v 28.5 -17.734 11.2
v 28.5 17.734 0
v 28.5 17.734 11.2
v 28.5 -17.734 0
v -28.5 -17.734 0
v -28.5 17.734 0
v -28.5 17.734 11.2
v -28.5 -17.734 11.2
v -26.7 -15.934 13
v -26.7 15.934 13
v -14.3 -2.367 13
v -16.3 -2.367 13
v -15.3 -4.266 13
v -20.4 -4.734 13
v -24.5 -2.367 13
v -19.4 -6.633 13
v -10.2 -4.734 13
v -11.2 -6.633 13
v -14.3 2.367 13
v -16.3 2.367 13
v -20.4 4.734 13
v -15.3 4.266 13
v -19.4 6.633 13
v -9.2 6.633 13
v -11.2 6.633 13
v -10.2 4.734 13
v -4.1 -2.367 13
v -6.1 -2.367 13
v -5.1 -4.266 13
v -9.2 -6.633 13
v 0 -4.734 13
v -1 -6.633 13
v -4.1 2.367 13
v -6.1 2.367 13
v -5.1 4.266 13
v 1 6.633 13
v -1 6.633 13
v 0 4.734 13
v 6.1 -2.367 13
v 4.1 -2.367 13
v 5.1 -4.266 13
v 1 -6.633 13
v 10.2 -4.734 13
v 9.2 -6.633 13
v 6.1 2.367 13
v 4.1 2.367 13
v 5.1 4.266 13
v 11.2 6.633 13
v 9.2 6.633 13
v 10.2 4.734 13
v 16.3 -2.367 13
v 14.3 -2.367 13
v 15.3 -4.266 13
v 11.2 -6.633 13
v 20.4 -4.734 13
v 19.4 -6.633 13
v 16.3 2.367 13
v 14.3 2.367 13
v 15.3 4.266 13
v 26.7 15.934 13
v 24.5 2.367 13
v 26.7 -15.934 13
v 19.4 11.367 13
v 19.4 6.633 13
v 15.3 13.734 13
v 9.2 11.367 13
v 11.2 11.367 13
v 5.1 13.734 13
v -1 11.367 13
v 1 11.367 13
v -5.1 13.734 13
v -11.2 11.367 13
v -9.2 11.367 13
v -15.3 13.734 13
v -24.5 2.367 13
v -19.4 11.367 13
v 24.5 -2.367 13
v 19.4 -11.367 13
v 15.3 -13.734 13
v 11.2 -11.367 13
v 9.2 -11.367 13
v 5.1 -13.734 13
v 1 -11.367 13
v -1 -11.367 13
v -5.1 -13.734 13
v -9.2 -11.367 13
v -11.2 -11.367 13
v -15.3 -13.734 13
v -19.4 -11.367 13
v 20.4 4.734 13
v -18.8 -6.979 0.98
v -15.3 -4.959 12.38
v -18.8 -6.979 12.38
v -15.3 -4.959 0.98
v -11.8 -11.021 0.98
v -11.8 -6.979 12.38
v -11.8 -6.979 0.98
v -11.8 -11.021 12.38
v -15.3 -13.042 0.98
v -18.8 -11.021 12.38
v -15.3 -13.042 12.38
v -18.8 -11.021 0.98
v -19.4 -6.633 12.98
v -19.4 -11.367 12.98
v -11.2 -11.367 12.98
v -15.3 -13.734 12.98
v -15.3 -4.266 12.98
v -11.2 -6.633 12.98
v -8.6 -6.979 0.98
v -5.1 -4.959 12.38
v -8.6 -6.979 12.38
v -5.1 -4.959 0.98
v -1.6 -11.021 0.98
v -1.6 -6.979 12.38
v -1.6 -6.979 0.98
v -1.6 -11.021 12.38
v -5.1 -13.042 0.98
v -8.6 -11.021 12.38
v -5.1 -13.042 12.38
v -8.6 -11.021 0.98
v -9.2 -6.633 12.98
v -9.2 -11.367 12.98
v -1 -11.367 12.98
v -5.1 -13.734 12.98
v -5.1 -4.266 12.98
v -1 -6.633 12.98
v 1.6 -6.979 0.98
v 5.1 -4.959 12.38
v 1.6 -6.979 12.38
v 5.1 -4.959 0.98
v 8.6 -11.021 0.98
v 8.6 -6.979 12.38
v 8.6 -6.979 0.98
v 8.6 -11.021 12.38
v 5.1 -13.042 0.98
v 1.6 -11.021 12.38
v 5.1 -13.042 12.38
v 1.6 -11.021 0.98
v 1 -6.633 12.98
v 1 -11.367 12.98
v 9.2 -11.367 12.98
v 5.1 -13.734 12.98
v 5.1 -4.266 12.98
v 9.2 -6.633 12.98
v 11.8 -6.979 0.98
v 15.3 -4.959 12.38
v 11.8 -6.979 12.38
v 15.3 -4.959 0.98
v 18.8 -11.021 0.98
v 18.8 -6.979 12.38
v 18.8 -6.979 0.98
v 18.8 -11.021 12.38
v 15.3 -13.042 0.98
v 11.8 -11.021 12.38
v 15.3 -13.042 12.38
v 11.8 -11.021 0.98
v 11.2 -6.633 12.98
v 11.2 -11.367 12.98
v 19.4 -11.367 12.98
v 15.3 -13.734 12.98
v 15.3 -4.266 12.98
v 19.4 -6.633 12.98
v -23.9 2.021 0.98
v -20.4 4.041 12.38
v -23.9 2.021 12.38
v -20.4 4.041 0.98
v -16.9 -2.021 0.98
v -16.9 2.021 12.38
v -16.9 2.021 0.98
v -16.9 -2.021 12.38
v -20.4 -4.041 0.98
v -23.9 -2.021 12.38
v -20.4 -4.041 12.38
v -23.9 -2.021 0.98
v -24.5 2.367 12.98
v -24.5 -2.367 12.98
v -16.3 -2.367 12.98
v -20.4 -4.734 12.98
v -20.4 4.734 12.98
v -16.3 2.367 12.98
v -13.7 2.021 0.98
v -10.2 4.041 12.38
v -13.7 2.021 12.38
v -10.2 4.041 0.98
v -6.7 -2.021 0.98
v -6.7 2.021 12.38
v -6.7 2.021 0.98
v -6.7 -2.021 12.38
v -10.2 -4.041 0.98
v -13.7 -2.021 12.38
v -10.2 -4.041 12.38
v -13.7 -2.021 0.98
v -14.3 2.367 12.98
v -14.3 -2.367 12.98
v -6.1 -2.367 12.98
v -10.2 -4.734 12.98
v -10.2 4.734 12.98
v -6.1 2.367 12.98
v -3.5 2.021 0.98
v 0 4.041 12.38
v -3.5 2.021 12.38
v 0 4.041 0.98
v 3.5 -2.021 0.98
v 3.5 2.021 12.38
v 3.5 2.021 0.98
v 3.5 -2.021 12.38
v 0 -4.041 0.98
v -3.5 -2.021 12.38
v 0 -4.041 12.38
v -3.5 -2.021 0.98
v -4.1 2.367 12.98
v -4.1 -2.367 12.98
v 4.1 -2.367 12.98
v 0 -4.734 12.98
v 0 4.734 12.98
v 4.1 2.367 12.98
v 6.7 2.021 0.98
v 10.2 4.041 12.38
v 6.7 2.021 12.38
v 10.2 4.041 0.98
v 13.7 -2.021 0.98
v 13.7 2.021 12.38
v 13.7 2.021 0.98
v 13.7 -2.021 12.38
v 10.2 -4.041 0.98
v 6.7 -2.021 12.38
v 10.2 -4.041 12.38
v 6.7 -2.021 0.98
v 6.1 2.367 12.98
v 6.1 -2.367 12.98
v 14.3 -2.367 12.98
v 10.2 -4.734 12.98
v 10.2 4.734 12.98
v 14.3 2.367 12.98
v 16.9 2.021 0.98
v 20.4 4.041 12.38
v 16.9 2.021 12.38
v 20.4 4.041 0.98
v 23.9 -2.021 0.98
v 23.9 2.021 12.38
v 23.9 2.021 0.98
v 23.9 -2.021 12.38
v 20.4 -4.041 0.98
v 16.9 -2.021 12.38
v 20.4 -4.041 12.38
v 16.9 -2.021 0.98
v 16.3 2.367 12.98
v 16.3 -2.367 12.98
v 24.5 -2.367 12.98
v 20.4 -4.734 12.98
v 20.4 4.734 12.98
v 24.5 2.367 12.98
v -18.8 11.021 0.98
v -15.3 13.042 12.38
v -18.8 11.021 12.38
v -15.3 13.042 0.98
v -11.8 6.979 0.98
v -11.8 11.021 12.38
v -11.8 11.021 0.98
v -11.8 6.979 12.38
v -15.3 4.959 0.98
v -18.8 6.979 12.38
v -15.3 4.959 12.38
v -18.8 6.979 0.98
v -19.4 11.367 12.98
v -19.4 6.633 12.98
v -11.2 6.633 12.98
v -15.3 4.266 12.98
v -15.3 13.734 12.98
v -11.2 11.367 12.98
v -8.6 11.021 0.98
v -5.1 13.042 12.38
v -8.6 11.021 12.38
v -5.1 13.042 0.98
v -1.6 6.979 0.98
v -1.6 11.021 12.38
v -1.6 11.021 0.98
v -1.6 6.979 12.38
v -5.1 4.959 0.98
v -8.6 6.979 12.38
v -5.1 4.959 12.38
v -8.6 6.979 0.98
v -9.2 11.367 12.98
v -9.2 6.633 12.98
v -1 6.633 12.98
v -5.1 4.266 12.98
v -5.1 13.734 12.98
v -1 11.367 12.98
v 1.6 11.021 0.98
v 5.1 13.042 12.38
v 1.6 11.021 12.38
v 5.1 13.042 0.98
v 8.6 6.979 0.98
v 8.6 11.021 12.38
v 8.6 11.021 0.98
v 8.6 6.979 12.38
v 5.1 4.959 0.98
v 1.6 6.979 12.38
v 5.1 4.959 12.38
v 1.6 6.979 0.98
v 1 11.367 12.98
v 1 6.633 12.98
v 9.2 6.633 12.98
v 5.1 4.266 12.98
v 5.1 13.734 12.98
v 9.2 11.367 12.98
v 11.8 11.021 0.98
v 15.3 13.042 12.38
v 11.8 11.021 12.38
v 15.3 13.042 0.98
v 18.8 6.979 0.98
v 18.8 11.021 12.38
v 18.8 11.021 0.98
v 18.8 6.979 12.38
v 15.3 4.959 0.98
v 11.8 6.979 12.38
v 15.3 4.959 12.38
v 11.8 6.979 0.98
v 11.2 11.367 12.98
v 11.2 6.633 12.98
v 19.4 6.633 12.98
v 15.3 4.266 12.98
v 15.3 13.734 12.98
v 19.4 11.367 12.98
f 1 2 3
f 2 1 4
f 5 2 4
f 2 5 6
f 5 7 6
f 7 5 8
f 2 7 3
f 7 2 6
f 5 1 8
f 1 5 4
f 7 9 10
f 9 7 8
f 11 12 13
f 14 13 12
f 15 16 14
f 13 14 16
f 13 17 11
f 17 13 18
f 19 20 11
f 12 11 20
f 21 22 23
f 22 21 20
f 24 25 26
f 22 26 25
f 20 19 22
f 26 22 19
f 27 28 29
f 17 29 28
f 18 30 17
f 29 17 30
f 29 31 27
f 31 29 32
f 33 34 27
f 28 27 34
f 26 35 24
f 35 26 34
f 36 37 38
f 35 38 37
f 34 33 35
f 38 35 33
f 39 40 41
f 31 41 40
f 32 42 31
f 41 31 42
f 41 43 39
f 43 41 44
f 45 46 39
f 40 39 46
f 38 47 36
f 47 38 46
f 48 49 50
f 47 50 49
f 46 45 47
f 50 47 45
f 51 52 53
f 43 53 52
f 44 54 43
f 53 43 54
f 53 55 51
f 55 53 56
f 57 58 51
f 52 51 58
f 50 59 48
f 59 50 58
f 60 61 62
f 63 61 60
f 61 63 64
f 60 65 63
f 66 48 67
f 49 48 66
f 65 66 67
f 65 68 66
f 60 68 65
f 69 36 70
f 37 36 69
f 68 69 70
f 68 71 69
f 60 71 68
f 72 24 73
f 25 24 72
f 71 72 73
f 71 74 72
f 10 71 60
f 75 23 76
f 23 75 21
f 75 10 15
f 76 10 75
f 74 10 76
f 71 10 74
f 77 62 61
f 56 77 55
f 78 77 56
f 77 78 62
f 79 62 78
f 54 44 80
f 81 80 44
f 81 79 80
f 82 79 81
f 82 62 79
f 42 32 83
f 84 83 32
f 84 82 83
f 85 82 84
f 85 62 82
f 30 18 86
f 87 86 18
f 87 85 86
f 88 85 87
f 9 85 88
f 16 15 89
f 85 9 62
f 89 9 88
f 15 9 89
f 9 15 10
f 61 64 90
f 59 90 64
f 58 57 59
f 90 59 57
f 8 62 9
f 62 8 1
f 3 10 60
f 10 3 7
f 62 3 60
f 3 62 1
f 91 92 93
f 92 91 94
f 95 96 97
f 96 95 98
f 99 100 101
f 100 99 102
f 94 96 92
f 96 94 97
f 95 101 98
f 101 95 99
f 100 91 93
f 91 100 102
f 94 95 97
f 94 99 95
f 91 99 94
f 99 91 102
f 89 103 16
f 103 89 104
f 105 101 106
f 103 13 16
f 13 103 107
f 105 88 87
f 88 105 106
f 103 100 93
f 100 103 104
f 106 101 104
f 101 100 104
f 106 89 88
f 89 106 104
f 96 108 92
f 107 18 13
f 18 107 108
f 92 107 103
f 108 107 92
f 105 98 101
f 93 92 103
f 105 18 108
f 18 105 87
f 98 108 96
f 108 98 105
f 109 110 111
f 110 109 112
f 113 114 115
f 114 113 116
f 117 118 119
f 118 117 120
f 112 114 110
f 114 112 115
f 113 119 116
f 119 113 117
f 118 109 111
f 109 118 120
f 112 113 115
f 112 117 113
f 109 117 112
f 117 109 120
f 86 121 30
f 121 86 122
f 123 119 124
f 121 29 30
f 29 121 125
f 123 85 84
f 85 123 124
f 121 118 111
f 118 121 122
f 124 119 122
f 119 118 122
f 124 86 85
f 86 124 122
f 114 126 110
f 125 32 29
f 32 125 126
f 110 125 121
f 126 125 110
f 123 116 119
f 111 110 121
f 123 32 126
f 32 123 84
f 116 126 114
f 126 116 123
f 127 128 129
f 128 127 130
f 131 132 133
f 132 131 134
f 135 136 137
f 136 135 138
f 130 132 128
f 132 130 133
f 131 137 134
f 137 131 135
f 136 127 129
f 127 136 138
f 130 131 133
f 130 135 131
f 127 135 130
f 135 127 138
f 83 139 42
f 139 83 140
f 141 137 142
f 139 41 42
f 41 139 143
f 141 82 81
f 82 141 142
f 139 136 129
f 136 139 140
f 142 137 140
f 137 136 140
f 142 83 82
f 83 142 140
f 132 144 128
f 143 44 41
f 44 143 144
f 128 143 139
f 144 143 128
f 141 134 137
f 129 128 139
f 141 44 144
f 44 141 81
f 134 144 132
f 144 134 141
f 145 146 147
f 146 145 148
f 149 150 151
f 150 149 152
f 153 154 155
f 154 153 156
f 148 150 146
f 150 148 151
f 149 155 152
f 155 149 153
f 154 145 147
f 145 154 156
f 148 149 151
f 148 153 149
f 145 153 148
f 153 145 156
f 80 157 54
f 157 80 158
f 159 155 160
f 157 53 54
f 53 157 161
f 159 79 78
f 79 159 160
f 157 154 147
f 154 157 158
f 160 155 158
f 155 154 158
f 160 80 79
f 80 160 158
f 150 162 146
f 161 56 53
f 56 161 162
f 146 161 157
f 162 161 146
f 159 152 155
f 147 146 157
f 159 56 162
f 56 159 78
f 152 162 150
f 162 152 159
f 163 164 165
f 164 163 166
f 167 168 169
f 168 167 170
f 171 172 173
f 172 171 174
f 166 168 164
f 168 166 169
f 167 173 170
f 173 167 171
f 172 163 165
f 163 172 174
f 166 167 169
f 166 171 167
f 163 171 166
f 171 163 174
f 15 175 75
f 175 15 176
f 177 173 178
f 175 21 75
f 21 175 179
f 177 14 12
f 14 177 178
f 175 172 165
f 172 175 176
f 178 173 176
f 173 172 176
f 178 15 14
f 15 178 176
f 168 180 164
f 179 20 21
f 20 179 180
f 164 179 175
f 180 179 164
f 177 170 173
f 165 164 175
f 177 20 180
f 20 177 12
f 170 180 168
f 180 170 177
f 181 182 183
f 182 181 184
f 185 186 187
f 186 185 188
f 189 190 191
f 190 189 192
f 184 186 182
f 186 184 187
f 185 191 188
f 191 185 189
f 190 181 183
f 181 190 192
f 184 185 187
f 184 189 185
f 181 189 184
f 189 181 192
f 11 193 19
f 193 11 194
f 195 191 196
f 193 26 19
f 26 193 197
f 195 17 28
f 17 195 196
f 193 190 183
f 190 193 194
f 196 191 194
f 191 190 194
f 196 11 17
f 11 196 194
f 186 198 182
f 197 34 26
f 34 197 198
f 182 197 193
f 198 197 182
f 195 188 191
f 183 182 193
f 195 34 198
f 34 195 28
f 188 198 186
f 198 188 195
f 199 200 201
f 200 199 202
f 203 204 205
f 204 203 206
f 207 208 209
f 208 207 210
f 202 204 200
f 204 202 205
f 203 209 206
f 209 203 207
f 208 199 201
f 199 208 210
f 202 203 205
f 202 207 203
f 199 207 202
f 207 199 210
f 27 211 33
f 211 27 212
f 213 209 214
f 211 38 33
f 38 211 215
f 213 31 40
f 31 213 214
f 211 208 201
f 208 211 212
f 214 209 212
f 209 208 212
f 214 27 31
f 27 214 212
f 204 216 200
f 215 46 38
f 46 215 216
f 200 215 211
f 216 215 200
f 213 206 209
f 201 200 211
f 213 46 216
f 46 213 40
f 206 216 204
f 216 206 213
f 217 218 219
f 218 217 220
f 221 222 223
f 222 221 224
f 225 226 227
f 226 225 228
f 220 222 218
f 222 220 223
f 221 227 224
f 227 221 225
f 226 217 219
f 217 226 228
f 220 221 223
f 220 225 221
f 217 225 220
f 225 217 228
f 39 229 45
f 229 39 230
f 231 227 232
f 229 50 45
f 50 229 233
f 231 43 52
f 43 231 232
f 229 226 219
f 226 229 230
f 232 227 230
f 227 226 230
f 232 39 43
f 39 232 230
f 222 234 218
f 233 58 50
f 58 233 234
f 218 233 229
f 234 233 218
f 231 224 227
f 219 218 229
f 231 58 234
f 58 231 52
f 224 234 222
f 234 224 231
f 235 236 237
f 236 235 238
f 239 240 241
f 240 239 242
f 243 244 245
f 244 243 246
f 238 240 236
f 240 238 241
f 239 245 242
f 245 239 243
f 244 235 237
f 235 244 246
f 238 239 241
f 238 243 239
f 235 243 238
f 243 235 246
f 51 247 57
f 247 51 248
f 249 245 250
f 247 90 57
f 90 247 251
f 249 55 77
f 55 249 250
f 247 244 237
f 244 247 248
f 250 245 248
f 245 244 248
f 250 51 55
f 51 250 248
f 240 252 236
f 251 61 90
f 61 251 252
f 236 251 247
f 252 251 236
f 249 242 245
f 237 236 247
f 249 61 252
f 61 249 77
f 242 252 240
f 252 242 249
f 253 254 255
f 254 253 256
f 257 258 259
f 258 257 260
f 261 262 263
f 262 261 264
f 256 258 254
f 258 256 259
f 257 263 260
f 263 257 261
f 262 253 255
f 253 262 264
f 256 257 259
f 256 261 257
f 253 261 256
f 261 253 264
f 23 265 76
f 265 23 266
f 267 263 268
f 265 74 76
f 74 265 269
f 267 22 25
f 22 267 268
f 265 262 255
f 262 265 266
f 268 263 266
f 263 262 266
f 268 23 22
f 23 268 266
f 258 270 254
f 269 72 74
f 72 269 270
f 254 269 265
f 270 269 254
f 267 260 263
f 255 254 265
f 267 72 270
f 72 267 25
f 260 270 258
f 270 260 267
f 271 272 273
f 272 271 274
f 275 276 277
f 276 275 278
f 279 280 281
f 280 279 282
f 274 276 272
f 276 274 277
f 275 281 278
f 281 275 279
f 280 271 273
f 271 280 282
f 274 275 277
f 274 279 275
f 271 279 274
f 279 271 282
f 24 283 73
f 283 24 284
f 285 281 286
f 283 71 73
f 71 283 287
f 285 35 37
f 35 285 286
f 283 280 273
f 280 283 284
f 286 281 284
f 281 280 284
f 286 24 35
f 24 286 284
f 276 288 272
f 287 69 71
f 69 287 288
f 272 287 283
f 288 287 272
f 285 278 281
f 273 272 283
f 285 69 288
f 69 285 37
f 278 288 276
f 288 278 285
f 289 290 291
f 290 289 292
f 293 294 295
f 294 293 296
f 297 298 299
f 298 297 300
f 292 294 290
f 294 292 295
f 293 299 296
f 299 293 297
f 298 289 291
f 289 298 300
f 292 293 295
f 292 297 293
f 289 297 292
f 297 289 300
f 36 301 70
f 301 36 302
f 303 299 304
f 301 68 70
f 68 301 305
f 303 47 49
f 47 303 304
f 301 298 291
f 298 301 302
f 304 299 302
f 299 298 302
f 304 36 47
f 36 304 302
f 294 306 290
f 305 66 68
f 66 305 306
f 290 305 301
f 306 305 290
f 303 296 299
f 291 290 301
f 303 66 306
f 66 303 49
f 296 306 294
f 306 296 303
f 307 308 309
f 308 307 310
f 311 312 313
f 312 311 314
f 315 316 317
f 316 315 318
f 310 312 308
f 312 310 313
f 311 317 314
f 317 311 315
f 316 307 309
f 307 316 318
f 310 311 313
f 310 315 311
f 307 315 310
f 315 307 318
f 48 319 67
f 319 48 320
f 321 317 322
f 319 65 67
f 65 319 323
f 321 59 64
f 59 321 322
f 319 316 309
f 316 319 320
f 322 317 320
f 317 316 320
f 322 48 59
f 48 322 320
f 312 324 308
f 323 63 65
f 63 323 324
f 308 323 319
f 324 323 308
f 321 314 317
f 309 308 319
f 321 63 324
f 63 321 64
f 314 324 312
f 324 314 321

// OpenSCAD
// Hex-pattern bit stand, revised layout
// Designed for 0.6 mm nozzle printing with no supports.
// Units: millimetres

$fn = 48;

// ---------- User parameters ----------
row_counts = [4, 5, 4];      // 13 total pockets in a hex-pattern cluster

hex_flat_to_flat = 7.0;      // straight pocket section
pocket_depth = 12.0;
base_thickness = 1.0;        // reduced from previous design
pocket_mouth_chamfer_h = 0.6;
pocket_mouth_flat_to_flat = 8.2;

pitch_x = 10.2;              // same-row centre spacing
pitch_y = 9.0;               // row spacing for hex-style staggering
edge_margin = 4.0;           // material from outermost pocket to body edge
body_h = pocket_depth + base_thickness;
outer_top_chamfer = 1.8;     // 45-degree top chamfer on outer body

// ---------- Derived values ----------
hex_r = hex_flat_to_flat / sqrt(3);              // circumradius of main pocket
mouth_hex_r = pocket_mouth_flat_to_flat / sqrt(3);
pocket_half_w = pocket_mouth_flat_to_flat / 2;   // pointy-top hex width = flat-to-flat
pocket_half_h = mouth_hex_r;                     // pointy-top hex height half = circumradius

max_row_half_span = max([ for (c = row_counts) ((c - 1) / 2) * pitch_x ]);
max_row_y = max([ for (ri = [0 : len(row_counts)-1]) abs((ri - (len(row_counts)-1)/2) * pitch_y) ]);

body_x = 2 * (max_row_half_span + pocket_half_w + edge_margin);
body_y = 2 * (max_row_y + pocket_half_h + edge_margin);

module hex_prism(r, h) {
    // Rotate 30 degrees so the named flat-to-flat size lies on the X axis.
    linear_extrude(height = h)
        rotate(30)
            circle(r = r, $fn = 6);
}

module top_chamfered_block(x, y, h, c) {
    assert(c > 0 && c < h, "outer_top_chamfer must be > 0 and < body_h");
    assert(2*c < min(x, y), "outer_top_chamfer too large for body footprint");

    union() {
        // Straight lower body.
        translate([-x/2, -y/2, 0])
            cube([x, y, h-c]);

        // 45-degree top-edge chamfer.
        hull() {
            translate([-x/2, -y/2, h-c-0.02])
                cube([x, y, 0.02]);
            translate([-(x-2*c)/2, -(y-2*c)/2, h-0.02])
                cube([x-2*c, y-2*c, 0.02]);
        }
    }
}

module bit_pocket() {
    // Main 7.0 mm AF pocket.
    translate([0, 0, body_h - pocket_depth - 0.02])
        hex_prism(hex_r, pocket_depth - pocket_mouth_chamfer_h + 0.04);

    // Lead-in taper. Functional pocket below remains 7.0 mm AF.
    hull() {
        translate([0, 0, body_h - pocket_mouth_chamfer_h - 0.02])
            hex_prism(hex_r, 0.02);
        translate([0, 0, body_h - 0.02])
            hex_prism(mouth_hex_r, 0.04);
    }
}

module stand() {
    difference() {
        top_chamfered_block(body_x, body_y, body_h, outer_top_chamfer);

        for (ri = [0 : len(row_counts)-1]) {
            count = row_counts[ri];
            y = (ri - (len(row_counts)-1)/2) * pitch_y;
            for (ci = [0 : count-1]) {
                x = (ci - (count-1)/2) * pitch_x;
                translate([x, y, 0])
                    bit_pocket();
            }
        }
    }
}

// Basic sanity checks.
total_pockets = 13;
assert(total_pockets >= 12, "Stand must hold at least 12 bits");
assert(body_h > pocket_depth, "Pocket depth must leave a closed floor");
assert(base_thickness >= 1.0, "Base thickness below 1.0 mm is not recommended");
assert(pocket_mouth_flat_to_flat >= hex_flat_to_flat,
       "Pocket mouth must not be smaller than the straight pocket");

stand();
